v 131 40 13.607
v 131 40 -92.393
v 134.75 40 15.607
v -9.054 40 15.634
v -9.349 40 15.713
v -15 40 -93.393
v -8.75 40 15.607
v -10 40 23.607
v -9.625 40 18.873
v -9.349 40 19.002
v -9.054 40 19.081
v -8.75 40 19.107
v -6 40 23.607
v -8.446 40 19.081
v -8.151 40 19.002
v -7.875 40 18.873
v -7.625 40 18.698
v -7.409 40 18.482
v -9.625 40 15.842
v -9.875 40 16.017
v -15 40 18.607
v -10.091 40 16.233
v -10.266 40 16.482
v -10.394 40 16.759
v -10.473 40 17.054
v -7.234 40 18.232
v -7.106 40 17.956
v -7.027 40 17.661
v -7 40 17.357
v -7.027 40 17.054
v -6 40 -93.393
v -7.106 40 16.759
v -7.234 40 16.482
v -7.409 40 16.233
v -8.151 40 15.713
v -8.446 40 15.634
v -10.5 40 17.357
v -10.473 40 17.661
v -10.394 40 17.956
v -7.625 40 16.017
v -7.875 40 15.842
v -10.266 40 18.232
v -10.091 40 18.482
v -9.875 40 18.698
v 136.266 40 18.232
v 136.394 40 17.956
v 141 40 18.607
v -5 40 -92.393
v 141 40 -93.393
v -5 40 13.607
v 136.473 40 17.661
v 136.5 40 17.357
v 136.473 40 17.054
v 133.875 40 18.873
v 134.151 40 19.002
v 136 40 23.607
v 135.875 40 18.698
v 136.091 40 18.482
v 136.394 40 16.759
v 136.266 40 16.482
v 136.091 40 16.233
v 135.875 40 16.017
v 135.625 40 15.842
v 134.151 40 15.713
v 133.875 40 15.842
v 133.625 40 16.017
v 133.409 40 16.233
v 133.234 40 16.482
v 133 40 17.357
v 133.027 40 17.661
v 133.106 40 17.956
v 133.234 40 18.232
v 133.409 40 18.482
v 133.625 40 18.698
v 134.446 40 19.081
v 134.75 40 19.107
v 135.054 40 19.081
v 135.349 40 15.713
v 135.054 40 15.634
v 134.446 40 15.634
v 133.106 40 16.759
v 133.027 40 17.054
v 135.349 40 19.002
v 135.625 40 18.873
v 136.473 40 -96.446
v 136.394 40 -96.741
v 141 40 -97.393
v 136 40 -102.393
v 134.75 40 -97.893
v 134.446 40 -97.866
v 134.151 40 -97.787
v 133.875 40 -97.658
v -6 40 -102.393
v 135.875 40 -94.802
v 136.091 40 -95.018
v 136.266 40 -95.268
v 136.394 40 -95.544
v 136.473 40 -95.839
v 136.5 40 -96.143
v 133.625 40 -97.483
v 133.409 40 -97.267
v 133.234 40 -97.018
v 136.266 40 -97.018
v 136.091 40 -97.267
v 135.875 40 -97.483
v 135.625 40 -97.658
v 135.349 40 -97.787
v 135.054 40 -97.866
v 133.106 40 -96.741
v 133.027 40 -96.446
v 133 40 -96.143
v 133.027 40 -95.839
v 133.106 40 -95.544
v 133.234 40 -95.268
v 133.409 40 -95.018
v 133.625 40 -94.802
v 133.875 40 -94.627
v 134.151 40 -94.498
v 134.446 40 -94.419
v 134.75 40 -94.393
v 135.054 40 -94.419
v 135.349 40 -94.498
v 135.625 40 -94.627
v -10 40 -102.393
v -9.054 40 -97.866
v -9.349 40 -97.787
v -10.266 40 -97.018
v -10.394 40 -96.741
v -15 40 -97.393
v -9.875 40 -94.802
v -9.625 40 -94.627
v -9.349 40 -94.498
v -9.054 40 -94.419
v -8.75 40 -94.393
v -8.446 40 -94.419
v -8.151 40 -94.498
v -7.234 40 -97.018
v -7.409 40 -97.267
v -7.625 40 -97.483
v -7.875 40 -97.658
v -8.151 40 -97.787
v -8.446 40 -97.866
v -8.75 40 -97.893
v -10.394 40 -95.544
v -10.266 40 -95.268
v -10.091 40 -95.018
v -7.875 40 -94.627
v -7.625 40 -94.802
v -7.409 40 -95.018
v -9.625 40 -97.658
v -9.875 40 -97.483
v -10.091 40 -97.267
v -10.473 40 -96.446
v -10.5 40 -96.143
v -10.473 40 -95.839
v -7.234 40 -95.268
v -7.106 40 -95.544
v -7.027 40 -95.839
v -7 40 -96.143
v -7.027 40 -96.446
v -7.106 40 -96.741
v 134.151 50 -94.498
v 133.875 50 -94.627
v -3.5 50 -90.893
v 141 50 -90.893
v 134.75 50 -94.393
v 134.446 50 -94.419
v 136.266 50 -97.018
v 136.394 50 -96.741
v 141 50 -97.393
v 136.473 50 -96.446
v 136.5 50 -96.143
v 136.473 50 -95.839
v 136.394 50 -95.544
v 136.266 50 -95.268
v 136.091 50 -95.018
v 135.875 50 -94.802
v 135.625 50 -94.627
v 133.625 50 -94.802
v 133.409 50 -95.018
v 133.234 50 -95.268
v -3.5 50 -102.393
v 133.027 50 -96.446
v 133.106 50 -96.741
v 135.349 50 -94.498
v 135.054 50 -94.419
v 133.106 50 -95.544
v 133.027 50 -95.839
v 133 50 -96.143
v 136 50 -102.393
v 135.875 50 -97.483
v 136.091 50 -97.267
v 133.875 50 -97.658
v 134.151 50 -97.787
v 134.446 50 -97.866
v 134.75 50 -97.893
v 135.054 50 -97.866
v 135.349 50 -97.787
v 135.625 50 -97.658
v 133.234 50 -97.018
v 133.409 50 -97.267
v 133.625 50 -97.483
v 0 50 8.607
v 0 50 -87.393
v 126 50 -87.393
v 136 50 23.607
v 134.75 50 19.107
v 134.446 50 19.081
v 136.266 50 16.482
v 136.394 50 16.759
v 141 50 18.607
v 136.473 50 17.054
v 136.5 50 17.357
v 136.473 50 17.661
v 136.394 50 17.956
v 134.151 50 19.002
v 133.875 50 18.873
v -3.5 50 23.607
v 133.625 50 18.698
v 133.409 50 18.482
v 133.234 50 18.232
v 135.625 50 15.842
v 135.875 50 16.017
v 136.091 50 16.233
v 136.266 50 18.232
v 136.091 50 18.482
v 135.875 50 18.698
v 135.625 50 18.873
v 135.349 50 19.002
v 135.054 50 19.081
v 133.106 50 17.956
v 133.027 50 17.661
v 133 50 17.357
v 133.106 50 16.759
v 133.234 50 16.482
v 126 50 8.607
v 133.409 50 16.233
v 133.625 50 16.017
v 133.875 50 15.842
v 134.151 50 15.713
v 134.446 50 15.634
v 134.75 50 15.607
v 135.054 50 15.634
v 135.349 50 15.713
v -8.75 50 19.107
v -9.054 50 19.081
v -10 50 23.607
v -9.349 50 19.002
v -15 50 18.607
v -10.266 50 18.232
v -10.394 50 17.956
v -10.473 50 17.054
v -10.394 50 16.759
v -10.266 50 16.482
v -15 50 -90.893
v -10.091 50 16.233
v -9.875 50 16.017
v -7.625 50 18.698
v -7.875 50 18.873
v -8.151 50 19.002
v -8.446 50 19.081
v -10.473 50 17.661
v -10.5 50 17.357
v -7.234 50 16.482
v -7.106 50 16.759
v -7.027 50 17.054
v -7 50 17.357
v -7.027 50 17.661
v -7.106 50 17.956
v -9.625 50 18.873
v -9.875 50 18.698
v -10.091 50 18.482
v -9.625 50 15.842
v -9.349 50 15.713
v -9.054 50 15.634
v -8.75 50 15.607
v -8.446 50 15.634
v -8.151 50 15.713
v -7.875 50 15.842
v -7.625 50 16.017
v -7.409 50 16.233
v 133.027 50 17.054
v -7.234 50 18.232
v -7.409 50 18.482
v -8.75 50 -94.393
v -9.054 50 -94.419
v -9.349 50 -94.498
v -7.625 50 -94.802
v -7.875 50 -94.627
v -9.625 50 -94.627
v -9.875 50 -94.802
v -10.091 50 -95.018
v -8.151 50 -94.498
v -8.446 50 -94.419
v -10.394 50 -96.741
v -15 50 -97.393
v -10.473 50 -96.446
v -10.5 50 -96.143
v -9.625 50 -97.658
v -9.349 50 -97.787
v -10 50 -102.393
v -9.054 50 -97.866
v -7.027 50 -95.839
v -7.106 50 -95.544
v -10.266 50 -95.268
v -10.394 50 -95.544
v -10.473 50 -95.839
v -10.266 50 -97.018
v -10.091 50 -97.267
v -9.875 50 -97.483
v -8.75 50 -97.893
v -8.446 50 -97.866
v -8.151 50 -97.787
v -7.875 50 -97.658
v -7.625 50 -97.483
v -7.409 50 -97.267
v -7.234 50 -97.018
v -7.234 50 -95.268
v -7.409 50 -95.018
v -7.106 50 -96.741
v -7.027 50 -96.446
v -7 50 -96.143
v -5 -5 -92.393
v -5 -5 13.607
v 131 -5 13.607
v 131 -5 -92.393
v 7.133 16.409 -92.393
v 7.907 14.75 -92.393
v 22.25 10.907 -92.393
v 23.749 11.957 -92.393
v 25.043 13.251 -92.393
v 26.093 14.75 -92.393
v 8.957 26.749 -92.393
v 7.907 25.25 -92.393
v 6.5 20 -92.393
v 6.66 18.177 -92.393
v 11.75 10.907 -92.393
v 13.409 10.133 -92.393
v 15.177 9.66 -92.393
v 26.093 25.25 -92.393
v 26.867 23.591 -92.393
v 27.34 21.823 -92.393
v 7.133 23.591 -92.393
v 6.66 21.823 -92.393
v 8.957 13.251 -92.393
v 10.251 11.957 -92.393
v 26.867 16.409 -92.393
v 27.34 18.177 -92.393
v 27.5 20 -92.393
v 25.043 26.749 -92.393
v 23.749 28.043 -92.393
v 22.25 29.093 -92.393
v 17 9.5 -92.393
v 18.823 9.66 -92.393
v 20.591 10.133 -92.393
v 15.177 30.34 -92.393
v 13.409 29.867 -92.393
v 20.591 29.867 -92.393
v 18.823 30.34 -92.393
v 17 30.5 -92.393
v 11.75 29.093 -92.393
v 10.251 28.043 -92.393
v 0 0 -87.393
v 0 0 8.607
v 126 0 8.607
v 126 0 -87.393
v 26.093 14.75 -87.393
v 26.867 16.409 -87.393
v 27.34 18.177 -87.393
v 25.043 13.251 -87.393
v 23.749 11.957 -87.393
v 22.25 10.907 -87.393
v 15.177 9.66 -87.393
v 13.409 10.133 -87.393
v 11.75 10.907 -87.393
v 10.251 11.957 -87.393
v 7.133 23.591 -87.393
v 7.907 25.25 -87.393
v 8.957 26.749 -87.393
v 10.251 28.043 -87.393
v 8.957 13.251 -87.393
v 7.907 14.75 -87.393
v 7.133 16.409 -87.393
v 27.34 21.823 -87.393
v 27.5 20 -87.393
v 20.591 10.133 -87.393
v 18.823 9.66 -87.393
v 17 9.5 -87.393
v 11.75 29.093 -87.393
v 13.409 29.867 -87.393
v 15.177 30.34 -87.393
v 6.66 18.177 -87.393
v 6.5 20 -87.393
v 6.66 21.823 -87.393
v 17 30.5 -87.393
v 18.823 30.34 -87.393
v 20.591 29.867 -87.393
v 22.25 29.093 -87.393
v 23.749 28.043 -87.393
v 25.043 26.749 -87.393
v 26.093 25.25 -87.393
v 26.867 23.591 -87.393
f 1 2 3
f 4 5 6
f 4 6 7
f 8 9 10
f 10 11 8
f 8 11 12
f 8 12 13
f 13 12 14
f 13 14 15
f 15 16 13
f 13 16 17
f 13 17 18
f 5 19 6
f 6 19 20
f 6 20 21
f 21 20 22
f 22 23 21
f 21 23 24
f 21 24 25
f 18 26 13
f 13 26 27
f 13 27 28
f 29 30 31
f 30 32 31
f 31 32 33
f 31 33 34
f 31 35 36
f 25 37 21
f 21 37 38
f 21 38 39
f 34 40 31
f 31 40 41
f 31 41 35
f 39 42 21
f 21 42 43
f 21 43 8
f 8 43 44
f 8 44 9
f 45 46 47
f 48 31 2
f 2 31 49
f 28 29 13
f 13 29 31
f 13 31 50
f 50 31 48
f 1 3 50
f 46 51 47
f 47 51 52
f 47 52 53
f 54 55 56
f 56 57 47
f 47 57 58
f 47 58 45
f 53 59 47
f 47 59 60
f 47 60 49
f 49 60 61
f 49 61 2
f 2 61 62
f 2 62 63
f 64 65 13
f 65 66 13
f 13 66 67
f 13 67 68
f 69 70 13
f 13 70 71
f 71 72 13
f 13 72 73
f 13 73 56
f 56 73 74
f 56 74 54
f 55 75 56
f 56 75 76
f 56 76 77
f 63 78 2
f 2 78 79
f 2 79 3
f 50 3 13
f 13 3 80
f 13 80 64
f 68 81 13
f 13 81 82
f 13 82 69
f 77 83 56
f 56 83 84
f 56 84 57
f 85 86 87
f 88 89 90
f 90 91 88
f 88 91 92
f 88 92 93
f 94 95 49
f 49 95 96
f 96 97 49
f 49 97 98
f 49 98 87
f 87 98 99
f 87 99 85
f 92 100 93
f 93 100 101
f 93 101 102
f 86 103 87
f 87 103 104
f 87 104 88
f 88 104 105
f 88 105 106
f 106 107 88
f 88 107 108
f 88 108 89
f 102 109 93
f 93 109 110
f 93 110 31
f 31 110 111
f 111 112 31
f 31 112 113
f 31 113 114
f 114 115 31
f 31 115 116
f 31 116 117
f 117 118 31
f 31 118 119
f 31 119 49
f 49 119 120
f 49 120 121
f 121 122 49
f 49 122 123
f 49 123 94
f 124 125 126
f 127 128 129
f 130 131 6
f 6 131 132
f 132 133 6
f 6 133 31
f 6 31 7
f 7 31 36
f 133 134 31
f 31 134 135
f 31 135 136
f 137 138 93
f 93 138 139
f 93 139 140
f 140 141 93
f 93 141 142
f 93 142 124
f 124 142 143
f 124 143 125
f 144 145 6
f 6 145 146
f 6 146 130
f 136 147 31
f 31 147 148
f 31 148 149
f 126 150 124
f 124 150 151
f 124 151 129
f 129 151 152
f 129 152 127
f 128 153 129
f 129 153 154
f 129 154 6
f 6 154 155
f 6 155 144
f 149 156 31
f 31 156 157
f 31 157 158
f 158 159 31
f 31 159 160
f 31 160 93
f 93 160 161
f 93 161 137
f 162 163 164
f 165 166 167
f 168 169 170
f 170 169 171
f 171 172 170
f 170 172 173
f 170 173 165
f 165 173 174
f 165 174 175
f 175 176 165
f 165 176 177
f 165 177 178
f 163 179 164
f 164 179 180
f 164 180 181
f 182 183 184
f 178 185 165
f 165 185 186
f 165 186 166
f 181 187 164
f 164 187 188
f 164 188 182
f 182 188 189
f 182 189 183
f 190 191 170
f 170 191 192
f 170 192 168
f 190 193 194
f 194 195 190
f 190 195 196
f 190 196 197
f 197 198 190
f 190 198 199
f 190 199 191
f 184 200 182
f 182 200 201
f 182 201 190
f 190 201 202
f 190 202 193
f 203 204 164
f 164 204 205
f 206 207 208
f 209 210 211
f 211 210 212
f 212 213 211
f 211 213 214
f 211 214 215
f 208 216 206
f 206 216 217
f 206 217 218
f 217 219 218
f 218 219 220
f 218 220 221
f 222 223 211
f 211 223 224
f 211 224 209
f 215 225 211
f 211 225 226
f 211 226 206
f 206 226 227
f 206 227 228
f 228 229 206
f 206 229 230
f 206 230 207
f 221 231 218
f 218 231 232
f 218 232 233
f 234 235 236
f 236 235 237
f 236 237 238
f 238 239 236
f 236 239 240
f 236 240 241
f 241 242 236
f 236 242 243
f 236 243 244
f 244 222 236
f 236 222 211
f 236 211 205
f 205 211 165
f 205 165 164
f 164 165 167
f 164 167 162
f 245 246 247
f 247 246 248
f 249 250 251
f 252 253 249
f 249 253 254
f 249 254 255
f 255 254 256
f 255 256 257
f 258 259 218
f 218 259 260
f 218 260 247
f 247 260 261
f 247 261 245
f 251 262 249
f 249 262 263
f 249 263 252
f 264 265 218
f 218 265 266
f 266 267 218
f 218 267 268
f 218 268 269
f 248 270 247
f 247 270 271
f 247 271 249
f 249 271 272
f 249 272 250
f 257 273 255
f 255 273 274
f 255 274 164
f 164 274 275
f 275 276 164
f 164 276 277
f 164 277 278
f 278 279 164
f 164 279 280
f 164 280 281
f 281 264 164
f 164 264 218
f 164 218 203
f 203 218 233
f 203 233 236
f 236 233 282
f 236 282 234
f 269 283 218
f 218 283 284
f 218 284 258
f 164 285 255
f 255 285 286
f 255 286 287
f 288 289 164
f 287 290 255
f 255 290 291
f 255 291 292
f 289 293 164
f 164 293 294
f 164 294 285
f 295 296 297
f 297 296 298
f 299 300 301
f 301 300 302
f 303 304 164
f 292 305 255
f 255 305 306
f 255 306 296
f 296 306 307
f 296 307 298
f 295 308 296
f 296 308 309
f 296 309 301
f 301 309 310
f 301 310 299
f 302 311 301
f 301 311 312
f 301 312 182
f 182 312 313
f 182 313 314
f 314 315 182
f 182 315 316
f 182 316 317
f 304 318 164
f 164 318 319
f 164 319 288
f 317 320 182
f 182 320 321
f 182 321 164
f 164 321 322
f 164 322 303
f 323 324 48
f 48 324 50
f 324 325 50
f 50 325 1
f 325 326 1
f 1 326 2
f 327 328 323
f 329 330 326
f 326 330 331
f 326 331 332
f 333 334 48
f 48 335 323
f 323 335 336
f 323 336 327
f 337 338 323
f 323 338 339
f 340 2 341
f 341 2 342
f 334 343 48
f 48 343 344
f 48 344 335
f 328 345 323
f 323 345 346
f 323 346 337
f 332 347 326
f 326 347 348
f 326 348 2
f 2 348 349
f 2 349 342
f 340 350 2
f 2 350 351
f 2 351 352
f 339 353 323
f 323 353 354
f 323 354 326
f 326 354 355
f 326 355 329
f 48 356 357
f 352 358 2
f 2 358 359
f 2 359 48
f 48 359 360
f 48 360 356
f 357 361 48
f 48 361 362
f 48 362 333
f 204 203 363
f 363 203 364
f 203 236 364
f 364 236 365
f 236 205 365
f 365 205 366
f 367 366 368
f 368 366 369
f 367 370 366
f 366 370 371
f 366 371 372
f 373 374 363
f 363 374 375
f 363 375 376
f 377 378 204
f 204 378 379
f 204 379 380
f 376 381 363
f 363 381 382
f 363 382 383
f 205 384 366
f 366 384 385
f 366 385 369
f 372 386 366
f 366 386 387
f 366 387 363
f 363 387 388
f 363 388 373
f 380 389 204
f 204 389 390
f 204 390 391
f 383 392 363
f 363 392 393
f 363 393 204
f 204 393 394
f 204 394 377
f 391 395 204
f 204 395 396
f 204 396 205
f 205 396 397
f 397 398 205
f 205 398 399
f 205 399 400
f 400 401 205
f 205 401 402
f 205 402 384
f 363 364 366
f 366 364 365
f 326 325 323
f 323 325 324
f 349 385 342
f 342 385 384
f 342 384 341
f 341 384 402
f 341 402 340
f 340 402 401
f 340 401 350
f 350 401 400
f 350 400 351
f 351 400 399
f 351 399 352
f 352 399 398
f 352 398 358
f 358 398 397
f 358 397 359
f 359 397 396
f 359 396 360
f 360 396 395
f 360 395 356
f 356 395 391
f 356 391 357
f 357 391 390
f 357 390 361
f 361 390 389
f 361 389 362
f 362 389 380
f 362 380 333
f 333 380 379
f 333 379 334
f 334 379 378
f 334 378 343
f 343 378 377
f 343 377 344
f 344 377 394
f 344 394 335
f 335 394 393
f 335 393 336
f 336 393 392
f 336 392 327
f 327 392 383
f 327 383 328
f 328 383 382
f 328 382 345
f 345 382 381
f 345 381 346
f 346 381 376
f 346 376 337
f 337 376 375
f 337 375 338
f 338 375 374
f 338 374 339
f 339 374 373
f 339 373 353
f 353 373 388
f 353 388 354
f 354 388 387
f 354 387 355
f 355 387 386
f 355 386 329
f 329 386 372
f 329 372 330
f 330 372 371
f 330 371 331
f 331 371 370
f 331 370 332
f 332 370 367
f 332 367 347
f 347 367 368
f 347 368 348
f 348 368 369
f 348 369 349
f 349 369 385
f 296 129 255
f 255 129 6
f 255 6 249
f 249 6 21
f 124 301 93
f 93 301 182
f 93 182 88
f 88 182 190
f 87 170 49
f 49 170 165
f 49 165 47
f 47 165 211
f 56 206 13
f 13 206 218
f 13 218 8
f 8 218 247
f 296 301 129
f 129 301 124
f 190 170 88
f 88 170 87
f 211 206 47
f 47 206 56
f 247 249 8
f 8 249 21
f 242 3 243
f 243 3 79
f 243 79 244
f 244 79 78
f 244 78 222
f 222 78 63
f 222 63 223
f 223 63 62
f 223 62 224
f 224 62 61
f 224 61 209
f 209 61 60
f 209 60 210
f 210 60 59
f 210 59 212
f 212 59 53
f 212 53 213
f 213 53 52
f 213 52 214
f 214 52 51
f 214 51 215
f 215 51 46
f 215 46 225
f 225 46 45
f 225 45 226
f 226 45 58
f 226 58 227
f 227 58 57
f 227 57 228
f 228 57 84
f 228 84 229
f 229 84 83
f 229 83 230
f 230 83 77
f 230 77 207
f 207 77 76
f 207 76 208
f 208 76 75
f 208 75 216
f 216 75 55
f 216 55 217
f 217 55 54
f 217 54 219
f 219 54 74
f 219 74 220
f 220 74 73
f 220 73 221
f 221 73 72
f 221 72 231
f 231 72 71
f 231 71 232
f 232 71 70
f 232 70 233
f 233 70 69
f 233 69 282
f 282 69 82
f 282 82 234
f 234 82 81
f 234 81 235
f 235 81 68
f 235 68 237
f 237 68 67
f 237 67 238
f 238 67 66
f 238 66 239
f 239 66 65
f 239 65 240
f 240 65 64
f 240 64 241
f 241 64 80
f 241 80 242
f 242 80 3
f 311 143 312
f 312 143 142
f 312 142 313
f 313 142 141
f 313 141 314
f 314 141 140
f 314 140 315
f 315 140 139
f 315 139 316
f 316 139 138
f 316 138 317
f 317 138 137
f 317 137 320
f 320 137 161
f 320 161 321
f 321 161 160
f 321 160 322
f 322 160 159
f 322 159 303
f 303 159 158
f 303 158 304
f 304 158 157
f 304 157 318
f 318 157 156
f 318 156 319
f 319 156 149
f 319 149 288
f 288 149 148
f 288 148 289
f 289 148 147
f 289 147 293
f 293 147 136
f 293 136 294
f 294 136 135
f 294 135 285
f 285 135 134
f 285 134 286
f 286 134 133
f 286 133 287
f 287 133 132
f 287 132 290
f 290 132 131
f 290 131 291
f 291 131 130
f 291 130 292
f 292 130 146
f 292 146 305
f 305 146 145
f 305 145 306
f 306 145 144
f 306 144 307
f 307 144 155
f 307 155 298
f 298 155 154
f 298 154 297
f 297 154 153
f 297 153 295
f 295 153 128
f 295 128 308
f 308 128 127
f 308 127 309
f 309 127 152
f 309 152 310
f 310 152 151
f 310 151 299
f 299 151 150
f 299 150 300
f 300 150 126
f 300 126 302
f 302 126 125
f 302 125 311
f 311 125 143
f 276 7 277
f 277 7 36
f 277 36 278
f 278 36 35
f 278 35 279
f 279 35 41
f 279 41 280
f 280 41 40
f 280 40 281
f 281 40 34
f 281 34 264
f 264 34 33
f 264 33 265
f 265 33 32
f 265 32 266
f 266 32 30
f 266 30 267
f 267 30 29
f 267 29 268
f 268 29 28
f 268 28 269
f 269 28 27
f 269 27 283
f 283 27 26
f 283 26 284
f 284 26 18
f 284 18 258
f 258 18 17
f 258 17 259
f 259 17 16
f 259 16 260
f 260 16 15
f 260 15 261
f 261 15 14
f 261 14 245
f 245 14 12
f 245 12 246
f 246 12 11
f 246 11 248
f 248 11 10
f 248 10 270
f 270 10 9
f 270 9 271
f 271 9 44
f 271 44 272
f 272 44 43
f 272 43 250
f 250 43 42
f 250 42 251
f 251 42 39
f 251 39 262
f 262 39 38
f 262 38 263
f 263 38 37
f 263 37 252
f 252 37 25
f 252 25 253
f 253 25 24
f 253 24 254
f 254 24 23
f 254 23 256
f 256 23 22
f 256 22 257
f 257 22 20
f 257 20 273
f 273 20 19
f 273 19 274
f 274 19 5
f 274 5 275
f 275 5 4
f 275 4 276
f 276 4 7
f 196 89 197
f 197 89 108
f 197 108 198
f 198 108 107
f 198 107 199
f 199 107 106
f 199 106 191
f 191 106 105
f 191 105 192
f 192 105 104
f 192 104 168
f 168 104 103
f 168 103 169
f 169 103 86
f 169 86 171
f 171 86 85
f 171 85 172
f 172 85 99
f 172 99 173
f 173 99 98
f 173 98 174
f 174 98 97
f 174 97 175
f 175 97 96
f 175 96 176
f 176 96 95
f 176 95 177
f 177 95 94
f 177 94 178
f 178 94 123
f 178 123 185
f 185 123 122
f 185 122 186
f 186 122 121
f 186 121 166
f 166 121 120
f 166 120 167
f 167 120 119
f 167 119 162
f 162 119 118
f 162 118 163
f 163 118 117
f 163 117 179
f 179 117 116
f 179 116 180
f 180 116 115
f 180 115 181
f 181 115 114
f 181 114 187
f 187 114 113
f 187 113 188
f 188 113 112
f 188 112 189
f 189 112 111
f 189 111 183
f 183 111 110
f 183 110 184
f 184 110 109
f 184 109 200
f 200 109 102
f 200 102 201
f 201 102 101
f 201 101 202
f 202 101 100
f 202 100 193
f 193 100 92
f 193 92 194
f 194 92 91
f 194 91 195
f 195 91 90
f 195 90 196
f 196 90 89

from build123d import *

# Parameters (mm, degrees)
SKETCH1_W                = 136
SKETCH1_H                = 106
SKETCH1_W_2              = 126
SKETCH1_H_2              = 96
BOSS_EXTRUDE1_DEPTH      = 45
SKETCH2_W                = 136
SKETCH2_H                = 106
BOSS_EXTRUDE3_DEPTH      = 5
SKETCH3_R                = 10.5
CUT_EXTRUDE1_DEPTH       = 5
BOSS_EXTRUDE4_DEPTH      = 5
BOSS_EXTRUDE4_DEPTH_BACK = 5
SKETCH4_W                = 156
SKETCH4_H                = 126
SKETCH4_W_2              = 136
SKETCH4_H_2              = 106
SKETCH5_W                = 136
SKETCH5_H                = 106
SKETCH5_W_2              = 126
SKETCH5_H_2              = 96
BOSS_EXTRUDE6_DEPTH      = 5
CHAMFER1_SIZE            = 5
SKETCH6_R                = 1.75
CUT_EXTRUDE2_DEPTH       = 180.97284412


with BuildPart() as part:
    # Sketch1 → Boss-Extrude1 (new body)
    with BuildSketch(Plane(origin=(0, 0, 0), x_dir=(1, 0, 0), z_dir=(0, 1, 0))):
        with Locations((63, 39.392502756)):
            Rectangle(SKETCH1_W, SKETCH1_H)
        with Locations((63, 39.392502756)):
            Rectangle(SKETCH1_W_2, SKETCH1_H_2, mode=Mode.SUBTRACT)
    extrude(amount=BOSS_EXTRUDE1_DEPTH)

    # Sketch2 → Boss-Extrude3 (add)
    with BuildSketch(Plane.XZ):
        with Locations((63, -39.392502756)):
            Rectangle(SKETCH2_W, SKETCH2_H)
    extrude(amount=BOSS_EXTRUDE3_DEPTH)

    # Sketch3 → Cut-Extrude1 (cut)
    with BuildSketch(Plane.XY.offset(-87.392502756)):
        with Locations((17, 20)):
            Circle(SKETCH3_R)
    extrude(amount=-CUT_EXTRUDE1_DEPTH, mode=Mode.SUBTRACT)

    # Sketch4 → Boss-Extrude4 (add, two sides: drawn at the far end of the back side and taken through both)
    with BuildSketch(Plane(origin=(0, 45, 0), x_dir=(1, 0, 0), z_dir=(0, 1, 0)).offset(-BOSS_EXTRUDE4_DEPTH_BACK)):
        with Locations((63, 39.392502756)):
            Rectangle(SKETCH4_W, SKETCH4_H)
        with Locations((63, 39.392502756)):
            Rectangle(SKETCH4_W_2, SKETCH4_H_2, mode=Mode.SUBTRACT)
    extrude(amount=BOSS_EXTRUDE4_DEPTH + BOSS_EXTRUDE4_DEPTH_BACK)

    # Sketch5 → Boss-Extrude6 (add)
    with BuildSketch(Plane(origin=(0, 45, 0), x_dir=(1, 0, 0), z_dir=(0, 1, 0))):
        with Locations((63, 39.392502756)):
            Rectangle(SKETCH5_W, SKETCH5_H)
        with Locations((63, 39.392502756)):
            Rectangle(SKETCH5_W_2, SKETCH5_H_2, mode=Mode.SUBTRACT)
    extrude(amount=BOSS_EXTRUDE6_DEPTH)

    # Chamfer1
    chamfer1_edges = [part.edges().sort_by_distance(p)[0] for p in [
        (-15, 45, 23.607497244),
        (-15, 45, -102.392502756),
        (141, 45, -102.392502756),
        (141, 45, 23.607497244),
    ]]
    chamfer(chamfer1_edges, length=CHAMFER1_SIZE)

    # Sketch6 → Cut-Extrude2 (cut, through all)
    with BuildSketch(Plane.XZ.offset(-40)):
        with Locations(Location((-8.75, 17.357497244, 0), (0, 0, 270))):
            Circle(SKETCH6_R)
        with Locations(Location((-8.75, -96.142502756, 0), (0, 0, 90))):
            Circle(SKETCH6_R)
        with Locations(Location((134.75, -96.142502756, 0), (0, 0, 270))):
            Circle(SKETCH6_R)
        with Locations(Location((134.75, 17.357497244, 0), (0, 0, 90))):
            Circle(SKETCH6_R)
    extrude(amount=-CUT_EXTRUDE2_DEPTH, mode=Mode.SUBTRACT)


solid = part.part
